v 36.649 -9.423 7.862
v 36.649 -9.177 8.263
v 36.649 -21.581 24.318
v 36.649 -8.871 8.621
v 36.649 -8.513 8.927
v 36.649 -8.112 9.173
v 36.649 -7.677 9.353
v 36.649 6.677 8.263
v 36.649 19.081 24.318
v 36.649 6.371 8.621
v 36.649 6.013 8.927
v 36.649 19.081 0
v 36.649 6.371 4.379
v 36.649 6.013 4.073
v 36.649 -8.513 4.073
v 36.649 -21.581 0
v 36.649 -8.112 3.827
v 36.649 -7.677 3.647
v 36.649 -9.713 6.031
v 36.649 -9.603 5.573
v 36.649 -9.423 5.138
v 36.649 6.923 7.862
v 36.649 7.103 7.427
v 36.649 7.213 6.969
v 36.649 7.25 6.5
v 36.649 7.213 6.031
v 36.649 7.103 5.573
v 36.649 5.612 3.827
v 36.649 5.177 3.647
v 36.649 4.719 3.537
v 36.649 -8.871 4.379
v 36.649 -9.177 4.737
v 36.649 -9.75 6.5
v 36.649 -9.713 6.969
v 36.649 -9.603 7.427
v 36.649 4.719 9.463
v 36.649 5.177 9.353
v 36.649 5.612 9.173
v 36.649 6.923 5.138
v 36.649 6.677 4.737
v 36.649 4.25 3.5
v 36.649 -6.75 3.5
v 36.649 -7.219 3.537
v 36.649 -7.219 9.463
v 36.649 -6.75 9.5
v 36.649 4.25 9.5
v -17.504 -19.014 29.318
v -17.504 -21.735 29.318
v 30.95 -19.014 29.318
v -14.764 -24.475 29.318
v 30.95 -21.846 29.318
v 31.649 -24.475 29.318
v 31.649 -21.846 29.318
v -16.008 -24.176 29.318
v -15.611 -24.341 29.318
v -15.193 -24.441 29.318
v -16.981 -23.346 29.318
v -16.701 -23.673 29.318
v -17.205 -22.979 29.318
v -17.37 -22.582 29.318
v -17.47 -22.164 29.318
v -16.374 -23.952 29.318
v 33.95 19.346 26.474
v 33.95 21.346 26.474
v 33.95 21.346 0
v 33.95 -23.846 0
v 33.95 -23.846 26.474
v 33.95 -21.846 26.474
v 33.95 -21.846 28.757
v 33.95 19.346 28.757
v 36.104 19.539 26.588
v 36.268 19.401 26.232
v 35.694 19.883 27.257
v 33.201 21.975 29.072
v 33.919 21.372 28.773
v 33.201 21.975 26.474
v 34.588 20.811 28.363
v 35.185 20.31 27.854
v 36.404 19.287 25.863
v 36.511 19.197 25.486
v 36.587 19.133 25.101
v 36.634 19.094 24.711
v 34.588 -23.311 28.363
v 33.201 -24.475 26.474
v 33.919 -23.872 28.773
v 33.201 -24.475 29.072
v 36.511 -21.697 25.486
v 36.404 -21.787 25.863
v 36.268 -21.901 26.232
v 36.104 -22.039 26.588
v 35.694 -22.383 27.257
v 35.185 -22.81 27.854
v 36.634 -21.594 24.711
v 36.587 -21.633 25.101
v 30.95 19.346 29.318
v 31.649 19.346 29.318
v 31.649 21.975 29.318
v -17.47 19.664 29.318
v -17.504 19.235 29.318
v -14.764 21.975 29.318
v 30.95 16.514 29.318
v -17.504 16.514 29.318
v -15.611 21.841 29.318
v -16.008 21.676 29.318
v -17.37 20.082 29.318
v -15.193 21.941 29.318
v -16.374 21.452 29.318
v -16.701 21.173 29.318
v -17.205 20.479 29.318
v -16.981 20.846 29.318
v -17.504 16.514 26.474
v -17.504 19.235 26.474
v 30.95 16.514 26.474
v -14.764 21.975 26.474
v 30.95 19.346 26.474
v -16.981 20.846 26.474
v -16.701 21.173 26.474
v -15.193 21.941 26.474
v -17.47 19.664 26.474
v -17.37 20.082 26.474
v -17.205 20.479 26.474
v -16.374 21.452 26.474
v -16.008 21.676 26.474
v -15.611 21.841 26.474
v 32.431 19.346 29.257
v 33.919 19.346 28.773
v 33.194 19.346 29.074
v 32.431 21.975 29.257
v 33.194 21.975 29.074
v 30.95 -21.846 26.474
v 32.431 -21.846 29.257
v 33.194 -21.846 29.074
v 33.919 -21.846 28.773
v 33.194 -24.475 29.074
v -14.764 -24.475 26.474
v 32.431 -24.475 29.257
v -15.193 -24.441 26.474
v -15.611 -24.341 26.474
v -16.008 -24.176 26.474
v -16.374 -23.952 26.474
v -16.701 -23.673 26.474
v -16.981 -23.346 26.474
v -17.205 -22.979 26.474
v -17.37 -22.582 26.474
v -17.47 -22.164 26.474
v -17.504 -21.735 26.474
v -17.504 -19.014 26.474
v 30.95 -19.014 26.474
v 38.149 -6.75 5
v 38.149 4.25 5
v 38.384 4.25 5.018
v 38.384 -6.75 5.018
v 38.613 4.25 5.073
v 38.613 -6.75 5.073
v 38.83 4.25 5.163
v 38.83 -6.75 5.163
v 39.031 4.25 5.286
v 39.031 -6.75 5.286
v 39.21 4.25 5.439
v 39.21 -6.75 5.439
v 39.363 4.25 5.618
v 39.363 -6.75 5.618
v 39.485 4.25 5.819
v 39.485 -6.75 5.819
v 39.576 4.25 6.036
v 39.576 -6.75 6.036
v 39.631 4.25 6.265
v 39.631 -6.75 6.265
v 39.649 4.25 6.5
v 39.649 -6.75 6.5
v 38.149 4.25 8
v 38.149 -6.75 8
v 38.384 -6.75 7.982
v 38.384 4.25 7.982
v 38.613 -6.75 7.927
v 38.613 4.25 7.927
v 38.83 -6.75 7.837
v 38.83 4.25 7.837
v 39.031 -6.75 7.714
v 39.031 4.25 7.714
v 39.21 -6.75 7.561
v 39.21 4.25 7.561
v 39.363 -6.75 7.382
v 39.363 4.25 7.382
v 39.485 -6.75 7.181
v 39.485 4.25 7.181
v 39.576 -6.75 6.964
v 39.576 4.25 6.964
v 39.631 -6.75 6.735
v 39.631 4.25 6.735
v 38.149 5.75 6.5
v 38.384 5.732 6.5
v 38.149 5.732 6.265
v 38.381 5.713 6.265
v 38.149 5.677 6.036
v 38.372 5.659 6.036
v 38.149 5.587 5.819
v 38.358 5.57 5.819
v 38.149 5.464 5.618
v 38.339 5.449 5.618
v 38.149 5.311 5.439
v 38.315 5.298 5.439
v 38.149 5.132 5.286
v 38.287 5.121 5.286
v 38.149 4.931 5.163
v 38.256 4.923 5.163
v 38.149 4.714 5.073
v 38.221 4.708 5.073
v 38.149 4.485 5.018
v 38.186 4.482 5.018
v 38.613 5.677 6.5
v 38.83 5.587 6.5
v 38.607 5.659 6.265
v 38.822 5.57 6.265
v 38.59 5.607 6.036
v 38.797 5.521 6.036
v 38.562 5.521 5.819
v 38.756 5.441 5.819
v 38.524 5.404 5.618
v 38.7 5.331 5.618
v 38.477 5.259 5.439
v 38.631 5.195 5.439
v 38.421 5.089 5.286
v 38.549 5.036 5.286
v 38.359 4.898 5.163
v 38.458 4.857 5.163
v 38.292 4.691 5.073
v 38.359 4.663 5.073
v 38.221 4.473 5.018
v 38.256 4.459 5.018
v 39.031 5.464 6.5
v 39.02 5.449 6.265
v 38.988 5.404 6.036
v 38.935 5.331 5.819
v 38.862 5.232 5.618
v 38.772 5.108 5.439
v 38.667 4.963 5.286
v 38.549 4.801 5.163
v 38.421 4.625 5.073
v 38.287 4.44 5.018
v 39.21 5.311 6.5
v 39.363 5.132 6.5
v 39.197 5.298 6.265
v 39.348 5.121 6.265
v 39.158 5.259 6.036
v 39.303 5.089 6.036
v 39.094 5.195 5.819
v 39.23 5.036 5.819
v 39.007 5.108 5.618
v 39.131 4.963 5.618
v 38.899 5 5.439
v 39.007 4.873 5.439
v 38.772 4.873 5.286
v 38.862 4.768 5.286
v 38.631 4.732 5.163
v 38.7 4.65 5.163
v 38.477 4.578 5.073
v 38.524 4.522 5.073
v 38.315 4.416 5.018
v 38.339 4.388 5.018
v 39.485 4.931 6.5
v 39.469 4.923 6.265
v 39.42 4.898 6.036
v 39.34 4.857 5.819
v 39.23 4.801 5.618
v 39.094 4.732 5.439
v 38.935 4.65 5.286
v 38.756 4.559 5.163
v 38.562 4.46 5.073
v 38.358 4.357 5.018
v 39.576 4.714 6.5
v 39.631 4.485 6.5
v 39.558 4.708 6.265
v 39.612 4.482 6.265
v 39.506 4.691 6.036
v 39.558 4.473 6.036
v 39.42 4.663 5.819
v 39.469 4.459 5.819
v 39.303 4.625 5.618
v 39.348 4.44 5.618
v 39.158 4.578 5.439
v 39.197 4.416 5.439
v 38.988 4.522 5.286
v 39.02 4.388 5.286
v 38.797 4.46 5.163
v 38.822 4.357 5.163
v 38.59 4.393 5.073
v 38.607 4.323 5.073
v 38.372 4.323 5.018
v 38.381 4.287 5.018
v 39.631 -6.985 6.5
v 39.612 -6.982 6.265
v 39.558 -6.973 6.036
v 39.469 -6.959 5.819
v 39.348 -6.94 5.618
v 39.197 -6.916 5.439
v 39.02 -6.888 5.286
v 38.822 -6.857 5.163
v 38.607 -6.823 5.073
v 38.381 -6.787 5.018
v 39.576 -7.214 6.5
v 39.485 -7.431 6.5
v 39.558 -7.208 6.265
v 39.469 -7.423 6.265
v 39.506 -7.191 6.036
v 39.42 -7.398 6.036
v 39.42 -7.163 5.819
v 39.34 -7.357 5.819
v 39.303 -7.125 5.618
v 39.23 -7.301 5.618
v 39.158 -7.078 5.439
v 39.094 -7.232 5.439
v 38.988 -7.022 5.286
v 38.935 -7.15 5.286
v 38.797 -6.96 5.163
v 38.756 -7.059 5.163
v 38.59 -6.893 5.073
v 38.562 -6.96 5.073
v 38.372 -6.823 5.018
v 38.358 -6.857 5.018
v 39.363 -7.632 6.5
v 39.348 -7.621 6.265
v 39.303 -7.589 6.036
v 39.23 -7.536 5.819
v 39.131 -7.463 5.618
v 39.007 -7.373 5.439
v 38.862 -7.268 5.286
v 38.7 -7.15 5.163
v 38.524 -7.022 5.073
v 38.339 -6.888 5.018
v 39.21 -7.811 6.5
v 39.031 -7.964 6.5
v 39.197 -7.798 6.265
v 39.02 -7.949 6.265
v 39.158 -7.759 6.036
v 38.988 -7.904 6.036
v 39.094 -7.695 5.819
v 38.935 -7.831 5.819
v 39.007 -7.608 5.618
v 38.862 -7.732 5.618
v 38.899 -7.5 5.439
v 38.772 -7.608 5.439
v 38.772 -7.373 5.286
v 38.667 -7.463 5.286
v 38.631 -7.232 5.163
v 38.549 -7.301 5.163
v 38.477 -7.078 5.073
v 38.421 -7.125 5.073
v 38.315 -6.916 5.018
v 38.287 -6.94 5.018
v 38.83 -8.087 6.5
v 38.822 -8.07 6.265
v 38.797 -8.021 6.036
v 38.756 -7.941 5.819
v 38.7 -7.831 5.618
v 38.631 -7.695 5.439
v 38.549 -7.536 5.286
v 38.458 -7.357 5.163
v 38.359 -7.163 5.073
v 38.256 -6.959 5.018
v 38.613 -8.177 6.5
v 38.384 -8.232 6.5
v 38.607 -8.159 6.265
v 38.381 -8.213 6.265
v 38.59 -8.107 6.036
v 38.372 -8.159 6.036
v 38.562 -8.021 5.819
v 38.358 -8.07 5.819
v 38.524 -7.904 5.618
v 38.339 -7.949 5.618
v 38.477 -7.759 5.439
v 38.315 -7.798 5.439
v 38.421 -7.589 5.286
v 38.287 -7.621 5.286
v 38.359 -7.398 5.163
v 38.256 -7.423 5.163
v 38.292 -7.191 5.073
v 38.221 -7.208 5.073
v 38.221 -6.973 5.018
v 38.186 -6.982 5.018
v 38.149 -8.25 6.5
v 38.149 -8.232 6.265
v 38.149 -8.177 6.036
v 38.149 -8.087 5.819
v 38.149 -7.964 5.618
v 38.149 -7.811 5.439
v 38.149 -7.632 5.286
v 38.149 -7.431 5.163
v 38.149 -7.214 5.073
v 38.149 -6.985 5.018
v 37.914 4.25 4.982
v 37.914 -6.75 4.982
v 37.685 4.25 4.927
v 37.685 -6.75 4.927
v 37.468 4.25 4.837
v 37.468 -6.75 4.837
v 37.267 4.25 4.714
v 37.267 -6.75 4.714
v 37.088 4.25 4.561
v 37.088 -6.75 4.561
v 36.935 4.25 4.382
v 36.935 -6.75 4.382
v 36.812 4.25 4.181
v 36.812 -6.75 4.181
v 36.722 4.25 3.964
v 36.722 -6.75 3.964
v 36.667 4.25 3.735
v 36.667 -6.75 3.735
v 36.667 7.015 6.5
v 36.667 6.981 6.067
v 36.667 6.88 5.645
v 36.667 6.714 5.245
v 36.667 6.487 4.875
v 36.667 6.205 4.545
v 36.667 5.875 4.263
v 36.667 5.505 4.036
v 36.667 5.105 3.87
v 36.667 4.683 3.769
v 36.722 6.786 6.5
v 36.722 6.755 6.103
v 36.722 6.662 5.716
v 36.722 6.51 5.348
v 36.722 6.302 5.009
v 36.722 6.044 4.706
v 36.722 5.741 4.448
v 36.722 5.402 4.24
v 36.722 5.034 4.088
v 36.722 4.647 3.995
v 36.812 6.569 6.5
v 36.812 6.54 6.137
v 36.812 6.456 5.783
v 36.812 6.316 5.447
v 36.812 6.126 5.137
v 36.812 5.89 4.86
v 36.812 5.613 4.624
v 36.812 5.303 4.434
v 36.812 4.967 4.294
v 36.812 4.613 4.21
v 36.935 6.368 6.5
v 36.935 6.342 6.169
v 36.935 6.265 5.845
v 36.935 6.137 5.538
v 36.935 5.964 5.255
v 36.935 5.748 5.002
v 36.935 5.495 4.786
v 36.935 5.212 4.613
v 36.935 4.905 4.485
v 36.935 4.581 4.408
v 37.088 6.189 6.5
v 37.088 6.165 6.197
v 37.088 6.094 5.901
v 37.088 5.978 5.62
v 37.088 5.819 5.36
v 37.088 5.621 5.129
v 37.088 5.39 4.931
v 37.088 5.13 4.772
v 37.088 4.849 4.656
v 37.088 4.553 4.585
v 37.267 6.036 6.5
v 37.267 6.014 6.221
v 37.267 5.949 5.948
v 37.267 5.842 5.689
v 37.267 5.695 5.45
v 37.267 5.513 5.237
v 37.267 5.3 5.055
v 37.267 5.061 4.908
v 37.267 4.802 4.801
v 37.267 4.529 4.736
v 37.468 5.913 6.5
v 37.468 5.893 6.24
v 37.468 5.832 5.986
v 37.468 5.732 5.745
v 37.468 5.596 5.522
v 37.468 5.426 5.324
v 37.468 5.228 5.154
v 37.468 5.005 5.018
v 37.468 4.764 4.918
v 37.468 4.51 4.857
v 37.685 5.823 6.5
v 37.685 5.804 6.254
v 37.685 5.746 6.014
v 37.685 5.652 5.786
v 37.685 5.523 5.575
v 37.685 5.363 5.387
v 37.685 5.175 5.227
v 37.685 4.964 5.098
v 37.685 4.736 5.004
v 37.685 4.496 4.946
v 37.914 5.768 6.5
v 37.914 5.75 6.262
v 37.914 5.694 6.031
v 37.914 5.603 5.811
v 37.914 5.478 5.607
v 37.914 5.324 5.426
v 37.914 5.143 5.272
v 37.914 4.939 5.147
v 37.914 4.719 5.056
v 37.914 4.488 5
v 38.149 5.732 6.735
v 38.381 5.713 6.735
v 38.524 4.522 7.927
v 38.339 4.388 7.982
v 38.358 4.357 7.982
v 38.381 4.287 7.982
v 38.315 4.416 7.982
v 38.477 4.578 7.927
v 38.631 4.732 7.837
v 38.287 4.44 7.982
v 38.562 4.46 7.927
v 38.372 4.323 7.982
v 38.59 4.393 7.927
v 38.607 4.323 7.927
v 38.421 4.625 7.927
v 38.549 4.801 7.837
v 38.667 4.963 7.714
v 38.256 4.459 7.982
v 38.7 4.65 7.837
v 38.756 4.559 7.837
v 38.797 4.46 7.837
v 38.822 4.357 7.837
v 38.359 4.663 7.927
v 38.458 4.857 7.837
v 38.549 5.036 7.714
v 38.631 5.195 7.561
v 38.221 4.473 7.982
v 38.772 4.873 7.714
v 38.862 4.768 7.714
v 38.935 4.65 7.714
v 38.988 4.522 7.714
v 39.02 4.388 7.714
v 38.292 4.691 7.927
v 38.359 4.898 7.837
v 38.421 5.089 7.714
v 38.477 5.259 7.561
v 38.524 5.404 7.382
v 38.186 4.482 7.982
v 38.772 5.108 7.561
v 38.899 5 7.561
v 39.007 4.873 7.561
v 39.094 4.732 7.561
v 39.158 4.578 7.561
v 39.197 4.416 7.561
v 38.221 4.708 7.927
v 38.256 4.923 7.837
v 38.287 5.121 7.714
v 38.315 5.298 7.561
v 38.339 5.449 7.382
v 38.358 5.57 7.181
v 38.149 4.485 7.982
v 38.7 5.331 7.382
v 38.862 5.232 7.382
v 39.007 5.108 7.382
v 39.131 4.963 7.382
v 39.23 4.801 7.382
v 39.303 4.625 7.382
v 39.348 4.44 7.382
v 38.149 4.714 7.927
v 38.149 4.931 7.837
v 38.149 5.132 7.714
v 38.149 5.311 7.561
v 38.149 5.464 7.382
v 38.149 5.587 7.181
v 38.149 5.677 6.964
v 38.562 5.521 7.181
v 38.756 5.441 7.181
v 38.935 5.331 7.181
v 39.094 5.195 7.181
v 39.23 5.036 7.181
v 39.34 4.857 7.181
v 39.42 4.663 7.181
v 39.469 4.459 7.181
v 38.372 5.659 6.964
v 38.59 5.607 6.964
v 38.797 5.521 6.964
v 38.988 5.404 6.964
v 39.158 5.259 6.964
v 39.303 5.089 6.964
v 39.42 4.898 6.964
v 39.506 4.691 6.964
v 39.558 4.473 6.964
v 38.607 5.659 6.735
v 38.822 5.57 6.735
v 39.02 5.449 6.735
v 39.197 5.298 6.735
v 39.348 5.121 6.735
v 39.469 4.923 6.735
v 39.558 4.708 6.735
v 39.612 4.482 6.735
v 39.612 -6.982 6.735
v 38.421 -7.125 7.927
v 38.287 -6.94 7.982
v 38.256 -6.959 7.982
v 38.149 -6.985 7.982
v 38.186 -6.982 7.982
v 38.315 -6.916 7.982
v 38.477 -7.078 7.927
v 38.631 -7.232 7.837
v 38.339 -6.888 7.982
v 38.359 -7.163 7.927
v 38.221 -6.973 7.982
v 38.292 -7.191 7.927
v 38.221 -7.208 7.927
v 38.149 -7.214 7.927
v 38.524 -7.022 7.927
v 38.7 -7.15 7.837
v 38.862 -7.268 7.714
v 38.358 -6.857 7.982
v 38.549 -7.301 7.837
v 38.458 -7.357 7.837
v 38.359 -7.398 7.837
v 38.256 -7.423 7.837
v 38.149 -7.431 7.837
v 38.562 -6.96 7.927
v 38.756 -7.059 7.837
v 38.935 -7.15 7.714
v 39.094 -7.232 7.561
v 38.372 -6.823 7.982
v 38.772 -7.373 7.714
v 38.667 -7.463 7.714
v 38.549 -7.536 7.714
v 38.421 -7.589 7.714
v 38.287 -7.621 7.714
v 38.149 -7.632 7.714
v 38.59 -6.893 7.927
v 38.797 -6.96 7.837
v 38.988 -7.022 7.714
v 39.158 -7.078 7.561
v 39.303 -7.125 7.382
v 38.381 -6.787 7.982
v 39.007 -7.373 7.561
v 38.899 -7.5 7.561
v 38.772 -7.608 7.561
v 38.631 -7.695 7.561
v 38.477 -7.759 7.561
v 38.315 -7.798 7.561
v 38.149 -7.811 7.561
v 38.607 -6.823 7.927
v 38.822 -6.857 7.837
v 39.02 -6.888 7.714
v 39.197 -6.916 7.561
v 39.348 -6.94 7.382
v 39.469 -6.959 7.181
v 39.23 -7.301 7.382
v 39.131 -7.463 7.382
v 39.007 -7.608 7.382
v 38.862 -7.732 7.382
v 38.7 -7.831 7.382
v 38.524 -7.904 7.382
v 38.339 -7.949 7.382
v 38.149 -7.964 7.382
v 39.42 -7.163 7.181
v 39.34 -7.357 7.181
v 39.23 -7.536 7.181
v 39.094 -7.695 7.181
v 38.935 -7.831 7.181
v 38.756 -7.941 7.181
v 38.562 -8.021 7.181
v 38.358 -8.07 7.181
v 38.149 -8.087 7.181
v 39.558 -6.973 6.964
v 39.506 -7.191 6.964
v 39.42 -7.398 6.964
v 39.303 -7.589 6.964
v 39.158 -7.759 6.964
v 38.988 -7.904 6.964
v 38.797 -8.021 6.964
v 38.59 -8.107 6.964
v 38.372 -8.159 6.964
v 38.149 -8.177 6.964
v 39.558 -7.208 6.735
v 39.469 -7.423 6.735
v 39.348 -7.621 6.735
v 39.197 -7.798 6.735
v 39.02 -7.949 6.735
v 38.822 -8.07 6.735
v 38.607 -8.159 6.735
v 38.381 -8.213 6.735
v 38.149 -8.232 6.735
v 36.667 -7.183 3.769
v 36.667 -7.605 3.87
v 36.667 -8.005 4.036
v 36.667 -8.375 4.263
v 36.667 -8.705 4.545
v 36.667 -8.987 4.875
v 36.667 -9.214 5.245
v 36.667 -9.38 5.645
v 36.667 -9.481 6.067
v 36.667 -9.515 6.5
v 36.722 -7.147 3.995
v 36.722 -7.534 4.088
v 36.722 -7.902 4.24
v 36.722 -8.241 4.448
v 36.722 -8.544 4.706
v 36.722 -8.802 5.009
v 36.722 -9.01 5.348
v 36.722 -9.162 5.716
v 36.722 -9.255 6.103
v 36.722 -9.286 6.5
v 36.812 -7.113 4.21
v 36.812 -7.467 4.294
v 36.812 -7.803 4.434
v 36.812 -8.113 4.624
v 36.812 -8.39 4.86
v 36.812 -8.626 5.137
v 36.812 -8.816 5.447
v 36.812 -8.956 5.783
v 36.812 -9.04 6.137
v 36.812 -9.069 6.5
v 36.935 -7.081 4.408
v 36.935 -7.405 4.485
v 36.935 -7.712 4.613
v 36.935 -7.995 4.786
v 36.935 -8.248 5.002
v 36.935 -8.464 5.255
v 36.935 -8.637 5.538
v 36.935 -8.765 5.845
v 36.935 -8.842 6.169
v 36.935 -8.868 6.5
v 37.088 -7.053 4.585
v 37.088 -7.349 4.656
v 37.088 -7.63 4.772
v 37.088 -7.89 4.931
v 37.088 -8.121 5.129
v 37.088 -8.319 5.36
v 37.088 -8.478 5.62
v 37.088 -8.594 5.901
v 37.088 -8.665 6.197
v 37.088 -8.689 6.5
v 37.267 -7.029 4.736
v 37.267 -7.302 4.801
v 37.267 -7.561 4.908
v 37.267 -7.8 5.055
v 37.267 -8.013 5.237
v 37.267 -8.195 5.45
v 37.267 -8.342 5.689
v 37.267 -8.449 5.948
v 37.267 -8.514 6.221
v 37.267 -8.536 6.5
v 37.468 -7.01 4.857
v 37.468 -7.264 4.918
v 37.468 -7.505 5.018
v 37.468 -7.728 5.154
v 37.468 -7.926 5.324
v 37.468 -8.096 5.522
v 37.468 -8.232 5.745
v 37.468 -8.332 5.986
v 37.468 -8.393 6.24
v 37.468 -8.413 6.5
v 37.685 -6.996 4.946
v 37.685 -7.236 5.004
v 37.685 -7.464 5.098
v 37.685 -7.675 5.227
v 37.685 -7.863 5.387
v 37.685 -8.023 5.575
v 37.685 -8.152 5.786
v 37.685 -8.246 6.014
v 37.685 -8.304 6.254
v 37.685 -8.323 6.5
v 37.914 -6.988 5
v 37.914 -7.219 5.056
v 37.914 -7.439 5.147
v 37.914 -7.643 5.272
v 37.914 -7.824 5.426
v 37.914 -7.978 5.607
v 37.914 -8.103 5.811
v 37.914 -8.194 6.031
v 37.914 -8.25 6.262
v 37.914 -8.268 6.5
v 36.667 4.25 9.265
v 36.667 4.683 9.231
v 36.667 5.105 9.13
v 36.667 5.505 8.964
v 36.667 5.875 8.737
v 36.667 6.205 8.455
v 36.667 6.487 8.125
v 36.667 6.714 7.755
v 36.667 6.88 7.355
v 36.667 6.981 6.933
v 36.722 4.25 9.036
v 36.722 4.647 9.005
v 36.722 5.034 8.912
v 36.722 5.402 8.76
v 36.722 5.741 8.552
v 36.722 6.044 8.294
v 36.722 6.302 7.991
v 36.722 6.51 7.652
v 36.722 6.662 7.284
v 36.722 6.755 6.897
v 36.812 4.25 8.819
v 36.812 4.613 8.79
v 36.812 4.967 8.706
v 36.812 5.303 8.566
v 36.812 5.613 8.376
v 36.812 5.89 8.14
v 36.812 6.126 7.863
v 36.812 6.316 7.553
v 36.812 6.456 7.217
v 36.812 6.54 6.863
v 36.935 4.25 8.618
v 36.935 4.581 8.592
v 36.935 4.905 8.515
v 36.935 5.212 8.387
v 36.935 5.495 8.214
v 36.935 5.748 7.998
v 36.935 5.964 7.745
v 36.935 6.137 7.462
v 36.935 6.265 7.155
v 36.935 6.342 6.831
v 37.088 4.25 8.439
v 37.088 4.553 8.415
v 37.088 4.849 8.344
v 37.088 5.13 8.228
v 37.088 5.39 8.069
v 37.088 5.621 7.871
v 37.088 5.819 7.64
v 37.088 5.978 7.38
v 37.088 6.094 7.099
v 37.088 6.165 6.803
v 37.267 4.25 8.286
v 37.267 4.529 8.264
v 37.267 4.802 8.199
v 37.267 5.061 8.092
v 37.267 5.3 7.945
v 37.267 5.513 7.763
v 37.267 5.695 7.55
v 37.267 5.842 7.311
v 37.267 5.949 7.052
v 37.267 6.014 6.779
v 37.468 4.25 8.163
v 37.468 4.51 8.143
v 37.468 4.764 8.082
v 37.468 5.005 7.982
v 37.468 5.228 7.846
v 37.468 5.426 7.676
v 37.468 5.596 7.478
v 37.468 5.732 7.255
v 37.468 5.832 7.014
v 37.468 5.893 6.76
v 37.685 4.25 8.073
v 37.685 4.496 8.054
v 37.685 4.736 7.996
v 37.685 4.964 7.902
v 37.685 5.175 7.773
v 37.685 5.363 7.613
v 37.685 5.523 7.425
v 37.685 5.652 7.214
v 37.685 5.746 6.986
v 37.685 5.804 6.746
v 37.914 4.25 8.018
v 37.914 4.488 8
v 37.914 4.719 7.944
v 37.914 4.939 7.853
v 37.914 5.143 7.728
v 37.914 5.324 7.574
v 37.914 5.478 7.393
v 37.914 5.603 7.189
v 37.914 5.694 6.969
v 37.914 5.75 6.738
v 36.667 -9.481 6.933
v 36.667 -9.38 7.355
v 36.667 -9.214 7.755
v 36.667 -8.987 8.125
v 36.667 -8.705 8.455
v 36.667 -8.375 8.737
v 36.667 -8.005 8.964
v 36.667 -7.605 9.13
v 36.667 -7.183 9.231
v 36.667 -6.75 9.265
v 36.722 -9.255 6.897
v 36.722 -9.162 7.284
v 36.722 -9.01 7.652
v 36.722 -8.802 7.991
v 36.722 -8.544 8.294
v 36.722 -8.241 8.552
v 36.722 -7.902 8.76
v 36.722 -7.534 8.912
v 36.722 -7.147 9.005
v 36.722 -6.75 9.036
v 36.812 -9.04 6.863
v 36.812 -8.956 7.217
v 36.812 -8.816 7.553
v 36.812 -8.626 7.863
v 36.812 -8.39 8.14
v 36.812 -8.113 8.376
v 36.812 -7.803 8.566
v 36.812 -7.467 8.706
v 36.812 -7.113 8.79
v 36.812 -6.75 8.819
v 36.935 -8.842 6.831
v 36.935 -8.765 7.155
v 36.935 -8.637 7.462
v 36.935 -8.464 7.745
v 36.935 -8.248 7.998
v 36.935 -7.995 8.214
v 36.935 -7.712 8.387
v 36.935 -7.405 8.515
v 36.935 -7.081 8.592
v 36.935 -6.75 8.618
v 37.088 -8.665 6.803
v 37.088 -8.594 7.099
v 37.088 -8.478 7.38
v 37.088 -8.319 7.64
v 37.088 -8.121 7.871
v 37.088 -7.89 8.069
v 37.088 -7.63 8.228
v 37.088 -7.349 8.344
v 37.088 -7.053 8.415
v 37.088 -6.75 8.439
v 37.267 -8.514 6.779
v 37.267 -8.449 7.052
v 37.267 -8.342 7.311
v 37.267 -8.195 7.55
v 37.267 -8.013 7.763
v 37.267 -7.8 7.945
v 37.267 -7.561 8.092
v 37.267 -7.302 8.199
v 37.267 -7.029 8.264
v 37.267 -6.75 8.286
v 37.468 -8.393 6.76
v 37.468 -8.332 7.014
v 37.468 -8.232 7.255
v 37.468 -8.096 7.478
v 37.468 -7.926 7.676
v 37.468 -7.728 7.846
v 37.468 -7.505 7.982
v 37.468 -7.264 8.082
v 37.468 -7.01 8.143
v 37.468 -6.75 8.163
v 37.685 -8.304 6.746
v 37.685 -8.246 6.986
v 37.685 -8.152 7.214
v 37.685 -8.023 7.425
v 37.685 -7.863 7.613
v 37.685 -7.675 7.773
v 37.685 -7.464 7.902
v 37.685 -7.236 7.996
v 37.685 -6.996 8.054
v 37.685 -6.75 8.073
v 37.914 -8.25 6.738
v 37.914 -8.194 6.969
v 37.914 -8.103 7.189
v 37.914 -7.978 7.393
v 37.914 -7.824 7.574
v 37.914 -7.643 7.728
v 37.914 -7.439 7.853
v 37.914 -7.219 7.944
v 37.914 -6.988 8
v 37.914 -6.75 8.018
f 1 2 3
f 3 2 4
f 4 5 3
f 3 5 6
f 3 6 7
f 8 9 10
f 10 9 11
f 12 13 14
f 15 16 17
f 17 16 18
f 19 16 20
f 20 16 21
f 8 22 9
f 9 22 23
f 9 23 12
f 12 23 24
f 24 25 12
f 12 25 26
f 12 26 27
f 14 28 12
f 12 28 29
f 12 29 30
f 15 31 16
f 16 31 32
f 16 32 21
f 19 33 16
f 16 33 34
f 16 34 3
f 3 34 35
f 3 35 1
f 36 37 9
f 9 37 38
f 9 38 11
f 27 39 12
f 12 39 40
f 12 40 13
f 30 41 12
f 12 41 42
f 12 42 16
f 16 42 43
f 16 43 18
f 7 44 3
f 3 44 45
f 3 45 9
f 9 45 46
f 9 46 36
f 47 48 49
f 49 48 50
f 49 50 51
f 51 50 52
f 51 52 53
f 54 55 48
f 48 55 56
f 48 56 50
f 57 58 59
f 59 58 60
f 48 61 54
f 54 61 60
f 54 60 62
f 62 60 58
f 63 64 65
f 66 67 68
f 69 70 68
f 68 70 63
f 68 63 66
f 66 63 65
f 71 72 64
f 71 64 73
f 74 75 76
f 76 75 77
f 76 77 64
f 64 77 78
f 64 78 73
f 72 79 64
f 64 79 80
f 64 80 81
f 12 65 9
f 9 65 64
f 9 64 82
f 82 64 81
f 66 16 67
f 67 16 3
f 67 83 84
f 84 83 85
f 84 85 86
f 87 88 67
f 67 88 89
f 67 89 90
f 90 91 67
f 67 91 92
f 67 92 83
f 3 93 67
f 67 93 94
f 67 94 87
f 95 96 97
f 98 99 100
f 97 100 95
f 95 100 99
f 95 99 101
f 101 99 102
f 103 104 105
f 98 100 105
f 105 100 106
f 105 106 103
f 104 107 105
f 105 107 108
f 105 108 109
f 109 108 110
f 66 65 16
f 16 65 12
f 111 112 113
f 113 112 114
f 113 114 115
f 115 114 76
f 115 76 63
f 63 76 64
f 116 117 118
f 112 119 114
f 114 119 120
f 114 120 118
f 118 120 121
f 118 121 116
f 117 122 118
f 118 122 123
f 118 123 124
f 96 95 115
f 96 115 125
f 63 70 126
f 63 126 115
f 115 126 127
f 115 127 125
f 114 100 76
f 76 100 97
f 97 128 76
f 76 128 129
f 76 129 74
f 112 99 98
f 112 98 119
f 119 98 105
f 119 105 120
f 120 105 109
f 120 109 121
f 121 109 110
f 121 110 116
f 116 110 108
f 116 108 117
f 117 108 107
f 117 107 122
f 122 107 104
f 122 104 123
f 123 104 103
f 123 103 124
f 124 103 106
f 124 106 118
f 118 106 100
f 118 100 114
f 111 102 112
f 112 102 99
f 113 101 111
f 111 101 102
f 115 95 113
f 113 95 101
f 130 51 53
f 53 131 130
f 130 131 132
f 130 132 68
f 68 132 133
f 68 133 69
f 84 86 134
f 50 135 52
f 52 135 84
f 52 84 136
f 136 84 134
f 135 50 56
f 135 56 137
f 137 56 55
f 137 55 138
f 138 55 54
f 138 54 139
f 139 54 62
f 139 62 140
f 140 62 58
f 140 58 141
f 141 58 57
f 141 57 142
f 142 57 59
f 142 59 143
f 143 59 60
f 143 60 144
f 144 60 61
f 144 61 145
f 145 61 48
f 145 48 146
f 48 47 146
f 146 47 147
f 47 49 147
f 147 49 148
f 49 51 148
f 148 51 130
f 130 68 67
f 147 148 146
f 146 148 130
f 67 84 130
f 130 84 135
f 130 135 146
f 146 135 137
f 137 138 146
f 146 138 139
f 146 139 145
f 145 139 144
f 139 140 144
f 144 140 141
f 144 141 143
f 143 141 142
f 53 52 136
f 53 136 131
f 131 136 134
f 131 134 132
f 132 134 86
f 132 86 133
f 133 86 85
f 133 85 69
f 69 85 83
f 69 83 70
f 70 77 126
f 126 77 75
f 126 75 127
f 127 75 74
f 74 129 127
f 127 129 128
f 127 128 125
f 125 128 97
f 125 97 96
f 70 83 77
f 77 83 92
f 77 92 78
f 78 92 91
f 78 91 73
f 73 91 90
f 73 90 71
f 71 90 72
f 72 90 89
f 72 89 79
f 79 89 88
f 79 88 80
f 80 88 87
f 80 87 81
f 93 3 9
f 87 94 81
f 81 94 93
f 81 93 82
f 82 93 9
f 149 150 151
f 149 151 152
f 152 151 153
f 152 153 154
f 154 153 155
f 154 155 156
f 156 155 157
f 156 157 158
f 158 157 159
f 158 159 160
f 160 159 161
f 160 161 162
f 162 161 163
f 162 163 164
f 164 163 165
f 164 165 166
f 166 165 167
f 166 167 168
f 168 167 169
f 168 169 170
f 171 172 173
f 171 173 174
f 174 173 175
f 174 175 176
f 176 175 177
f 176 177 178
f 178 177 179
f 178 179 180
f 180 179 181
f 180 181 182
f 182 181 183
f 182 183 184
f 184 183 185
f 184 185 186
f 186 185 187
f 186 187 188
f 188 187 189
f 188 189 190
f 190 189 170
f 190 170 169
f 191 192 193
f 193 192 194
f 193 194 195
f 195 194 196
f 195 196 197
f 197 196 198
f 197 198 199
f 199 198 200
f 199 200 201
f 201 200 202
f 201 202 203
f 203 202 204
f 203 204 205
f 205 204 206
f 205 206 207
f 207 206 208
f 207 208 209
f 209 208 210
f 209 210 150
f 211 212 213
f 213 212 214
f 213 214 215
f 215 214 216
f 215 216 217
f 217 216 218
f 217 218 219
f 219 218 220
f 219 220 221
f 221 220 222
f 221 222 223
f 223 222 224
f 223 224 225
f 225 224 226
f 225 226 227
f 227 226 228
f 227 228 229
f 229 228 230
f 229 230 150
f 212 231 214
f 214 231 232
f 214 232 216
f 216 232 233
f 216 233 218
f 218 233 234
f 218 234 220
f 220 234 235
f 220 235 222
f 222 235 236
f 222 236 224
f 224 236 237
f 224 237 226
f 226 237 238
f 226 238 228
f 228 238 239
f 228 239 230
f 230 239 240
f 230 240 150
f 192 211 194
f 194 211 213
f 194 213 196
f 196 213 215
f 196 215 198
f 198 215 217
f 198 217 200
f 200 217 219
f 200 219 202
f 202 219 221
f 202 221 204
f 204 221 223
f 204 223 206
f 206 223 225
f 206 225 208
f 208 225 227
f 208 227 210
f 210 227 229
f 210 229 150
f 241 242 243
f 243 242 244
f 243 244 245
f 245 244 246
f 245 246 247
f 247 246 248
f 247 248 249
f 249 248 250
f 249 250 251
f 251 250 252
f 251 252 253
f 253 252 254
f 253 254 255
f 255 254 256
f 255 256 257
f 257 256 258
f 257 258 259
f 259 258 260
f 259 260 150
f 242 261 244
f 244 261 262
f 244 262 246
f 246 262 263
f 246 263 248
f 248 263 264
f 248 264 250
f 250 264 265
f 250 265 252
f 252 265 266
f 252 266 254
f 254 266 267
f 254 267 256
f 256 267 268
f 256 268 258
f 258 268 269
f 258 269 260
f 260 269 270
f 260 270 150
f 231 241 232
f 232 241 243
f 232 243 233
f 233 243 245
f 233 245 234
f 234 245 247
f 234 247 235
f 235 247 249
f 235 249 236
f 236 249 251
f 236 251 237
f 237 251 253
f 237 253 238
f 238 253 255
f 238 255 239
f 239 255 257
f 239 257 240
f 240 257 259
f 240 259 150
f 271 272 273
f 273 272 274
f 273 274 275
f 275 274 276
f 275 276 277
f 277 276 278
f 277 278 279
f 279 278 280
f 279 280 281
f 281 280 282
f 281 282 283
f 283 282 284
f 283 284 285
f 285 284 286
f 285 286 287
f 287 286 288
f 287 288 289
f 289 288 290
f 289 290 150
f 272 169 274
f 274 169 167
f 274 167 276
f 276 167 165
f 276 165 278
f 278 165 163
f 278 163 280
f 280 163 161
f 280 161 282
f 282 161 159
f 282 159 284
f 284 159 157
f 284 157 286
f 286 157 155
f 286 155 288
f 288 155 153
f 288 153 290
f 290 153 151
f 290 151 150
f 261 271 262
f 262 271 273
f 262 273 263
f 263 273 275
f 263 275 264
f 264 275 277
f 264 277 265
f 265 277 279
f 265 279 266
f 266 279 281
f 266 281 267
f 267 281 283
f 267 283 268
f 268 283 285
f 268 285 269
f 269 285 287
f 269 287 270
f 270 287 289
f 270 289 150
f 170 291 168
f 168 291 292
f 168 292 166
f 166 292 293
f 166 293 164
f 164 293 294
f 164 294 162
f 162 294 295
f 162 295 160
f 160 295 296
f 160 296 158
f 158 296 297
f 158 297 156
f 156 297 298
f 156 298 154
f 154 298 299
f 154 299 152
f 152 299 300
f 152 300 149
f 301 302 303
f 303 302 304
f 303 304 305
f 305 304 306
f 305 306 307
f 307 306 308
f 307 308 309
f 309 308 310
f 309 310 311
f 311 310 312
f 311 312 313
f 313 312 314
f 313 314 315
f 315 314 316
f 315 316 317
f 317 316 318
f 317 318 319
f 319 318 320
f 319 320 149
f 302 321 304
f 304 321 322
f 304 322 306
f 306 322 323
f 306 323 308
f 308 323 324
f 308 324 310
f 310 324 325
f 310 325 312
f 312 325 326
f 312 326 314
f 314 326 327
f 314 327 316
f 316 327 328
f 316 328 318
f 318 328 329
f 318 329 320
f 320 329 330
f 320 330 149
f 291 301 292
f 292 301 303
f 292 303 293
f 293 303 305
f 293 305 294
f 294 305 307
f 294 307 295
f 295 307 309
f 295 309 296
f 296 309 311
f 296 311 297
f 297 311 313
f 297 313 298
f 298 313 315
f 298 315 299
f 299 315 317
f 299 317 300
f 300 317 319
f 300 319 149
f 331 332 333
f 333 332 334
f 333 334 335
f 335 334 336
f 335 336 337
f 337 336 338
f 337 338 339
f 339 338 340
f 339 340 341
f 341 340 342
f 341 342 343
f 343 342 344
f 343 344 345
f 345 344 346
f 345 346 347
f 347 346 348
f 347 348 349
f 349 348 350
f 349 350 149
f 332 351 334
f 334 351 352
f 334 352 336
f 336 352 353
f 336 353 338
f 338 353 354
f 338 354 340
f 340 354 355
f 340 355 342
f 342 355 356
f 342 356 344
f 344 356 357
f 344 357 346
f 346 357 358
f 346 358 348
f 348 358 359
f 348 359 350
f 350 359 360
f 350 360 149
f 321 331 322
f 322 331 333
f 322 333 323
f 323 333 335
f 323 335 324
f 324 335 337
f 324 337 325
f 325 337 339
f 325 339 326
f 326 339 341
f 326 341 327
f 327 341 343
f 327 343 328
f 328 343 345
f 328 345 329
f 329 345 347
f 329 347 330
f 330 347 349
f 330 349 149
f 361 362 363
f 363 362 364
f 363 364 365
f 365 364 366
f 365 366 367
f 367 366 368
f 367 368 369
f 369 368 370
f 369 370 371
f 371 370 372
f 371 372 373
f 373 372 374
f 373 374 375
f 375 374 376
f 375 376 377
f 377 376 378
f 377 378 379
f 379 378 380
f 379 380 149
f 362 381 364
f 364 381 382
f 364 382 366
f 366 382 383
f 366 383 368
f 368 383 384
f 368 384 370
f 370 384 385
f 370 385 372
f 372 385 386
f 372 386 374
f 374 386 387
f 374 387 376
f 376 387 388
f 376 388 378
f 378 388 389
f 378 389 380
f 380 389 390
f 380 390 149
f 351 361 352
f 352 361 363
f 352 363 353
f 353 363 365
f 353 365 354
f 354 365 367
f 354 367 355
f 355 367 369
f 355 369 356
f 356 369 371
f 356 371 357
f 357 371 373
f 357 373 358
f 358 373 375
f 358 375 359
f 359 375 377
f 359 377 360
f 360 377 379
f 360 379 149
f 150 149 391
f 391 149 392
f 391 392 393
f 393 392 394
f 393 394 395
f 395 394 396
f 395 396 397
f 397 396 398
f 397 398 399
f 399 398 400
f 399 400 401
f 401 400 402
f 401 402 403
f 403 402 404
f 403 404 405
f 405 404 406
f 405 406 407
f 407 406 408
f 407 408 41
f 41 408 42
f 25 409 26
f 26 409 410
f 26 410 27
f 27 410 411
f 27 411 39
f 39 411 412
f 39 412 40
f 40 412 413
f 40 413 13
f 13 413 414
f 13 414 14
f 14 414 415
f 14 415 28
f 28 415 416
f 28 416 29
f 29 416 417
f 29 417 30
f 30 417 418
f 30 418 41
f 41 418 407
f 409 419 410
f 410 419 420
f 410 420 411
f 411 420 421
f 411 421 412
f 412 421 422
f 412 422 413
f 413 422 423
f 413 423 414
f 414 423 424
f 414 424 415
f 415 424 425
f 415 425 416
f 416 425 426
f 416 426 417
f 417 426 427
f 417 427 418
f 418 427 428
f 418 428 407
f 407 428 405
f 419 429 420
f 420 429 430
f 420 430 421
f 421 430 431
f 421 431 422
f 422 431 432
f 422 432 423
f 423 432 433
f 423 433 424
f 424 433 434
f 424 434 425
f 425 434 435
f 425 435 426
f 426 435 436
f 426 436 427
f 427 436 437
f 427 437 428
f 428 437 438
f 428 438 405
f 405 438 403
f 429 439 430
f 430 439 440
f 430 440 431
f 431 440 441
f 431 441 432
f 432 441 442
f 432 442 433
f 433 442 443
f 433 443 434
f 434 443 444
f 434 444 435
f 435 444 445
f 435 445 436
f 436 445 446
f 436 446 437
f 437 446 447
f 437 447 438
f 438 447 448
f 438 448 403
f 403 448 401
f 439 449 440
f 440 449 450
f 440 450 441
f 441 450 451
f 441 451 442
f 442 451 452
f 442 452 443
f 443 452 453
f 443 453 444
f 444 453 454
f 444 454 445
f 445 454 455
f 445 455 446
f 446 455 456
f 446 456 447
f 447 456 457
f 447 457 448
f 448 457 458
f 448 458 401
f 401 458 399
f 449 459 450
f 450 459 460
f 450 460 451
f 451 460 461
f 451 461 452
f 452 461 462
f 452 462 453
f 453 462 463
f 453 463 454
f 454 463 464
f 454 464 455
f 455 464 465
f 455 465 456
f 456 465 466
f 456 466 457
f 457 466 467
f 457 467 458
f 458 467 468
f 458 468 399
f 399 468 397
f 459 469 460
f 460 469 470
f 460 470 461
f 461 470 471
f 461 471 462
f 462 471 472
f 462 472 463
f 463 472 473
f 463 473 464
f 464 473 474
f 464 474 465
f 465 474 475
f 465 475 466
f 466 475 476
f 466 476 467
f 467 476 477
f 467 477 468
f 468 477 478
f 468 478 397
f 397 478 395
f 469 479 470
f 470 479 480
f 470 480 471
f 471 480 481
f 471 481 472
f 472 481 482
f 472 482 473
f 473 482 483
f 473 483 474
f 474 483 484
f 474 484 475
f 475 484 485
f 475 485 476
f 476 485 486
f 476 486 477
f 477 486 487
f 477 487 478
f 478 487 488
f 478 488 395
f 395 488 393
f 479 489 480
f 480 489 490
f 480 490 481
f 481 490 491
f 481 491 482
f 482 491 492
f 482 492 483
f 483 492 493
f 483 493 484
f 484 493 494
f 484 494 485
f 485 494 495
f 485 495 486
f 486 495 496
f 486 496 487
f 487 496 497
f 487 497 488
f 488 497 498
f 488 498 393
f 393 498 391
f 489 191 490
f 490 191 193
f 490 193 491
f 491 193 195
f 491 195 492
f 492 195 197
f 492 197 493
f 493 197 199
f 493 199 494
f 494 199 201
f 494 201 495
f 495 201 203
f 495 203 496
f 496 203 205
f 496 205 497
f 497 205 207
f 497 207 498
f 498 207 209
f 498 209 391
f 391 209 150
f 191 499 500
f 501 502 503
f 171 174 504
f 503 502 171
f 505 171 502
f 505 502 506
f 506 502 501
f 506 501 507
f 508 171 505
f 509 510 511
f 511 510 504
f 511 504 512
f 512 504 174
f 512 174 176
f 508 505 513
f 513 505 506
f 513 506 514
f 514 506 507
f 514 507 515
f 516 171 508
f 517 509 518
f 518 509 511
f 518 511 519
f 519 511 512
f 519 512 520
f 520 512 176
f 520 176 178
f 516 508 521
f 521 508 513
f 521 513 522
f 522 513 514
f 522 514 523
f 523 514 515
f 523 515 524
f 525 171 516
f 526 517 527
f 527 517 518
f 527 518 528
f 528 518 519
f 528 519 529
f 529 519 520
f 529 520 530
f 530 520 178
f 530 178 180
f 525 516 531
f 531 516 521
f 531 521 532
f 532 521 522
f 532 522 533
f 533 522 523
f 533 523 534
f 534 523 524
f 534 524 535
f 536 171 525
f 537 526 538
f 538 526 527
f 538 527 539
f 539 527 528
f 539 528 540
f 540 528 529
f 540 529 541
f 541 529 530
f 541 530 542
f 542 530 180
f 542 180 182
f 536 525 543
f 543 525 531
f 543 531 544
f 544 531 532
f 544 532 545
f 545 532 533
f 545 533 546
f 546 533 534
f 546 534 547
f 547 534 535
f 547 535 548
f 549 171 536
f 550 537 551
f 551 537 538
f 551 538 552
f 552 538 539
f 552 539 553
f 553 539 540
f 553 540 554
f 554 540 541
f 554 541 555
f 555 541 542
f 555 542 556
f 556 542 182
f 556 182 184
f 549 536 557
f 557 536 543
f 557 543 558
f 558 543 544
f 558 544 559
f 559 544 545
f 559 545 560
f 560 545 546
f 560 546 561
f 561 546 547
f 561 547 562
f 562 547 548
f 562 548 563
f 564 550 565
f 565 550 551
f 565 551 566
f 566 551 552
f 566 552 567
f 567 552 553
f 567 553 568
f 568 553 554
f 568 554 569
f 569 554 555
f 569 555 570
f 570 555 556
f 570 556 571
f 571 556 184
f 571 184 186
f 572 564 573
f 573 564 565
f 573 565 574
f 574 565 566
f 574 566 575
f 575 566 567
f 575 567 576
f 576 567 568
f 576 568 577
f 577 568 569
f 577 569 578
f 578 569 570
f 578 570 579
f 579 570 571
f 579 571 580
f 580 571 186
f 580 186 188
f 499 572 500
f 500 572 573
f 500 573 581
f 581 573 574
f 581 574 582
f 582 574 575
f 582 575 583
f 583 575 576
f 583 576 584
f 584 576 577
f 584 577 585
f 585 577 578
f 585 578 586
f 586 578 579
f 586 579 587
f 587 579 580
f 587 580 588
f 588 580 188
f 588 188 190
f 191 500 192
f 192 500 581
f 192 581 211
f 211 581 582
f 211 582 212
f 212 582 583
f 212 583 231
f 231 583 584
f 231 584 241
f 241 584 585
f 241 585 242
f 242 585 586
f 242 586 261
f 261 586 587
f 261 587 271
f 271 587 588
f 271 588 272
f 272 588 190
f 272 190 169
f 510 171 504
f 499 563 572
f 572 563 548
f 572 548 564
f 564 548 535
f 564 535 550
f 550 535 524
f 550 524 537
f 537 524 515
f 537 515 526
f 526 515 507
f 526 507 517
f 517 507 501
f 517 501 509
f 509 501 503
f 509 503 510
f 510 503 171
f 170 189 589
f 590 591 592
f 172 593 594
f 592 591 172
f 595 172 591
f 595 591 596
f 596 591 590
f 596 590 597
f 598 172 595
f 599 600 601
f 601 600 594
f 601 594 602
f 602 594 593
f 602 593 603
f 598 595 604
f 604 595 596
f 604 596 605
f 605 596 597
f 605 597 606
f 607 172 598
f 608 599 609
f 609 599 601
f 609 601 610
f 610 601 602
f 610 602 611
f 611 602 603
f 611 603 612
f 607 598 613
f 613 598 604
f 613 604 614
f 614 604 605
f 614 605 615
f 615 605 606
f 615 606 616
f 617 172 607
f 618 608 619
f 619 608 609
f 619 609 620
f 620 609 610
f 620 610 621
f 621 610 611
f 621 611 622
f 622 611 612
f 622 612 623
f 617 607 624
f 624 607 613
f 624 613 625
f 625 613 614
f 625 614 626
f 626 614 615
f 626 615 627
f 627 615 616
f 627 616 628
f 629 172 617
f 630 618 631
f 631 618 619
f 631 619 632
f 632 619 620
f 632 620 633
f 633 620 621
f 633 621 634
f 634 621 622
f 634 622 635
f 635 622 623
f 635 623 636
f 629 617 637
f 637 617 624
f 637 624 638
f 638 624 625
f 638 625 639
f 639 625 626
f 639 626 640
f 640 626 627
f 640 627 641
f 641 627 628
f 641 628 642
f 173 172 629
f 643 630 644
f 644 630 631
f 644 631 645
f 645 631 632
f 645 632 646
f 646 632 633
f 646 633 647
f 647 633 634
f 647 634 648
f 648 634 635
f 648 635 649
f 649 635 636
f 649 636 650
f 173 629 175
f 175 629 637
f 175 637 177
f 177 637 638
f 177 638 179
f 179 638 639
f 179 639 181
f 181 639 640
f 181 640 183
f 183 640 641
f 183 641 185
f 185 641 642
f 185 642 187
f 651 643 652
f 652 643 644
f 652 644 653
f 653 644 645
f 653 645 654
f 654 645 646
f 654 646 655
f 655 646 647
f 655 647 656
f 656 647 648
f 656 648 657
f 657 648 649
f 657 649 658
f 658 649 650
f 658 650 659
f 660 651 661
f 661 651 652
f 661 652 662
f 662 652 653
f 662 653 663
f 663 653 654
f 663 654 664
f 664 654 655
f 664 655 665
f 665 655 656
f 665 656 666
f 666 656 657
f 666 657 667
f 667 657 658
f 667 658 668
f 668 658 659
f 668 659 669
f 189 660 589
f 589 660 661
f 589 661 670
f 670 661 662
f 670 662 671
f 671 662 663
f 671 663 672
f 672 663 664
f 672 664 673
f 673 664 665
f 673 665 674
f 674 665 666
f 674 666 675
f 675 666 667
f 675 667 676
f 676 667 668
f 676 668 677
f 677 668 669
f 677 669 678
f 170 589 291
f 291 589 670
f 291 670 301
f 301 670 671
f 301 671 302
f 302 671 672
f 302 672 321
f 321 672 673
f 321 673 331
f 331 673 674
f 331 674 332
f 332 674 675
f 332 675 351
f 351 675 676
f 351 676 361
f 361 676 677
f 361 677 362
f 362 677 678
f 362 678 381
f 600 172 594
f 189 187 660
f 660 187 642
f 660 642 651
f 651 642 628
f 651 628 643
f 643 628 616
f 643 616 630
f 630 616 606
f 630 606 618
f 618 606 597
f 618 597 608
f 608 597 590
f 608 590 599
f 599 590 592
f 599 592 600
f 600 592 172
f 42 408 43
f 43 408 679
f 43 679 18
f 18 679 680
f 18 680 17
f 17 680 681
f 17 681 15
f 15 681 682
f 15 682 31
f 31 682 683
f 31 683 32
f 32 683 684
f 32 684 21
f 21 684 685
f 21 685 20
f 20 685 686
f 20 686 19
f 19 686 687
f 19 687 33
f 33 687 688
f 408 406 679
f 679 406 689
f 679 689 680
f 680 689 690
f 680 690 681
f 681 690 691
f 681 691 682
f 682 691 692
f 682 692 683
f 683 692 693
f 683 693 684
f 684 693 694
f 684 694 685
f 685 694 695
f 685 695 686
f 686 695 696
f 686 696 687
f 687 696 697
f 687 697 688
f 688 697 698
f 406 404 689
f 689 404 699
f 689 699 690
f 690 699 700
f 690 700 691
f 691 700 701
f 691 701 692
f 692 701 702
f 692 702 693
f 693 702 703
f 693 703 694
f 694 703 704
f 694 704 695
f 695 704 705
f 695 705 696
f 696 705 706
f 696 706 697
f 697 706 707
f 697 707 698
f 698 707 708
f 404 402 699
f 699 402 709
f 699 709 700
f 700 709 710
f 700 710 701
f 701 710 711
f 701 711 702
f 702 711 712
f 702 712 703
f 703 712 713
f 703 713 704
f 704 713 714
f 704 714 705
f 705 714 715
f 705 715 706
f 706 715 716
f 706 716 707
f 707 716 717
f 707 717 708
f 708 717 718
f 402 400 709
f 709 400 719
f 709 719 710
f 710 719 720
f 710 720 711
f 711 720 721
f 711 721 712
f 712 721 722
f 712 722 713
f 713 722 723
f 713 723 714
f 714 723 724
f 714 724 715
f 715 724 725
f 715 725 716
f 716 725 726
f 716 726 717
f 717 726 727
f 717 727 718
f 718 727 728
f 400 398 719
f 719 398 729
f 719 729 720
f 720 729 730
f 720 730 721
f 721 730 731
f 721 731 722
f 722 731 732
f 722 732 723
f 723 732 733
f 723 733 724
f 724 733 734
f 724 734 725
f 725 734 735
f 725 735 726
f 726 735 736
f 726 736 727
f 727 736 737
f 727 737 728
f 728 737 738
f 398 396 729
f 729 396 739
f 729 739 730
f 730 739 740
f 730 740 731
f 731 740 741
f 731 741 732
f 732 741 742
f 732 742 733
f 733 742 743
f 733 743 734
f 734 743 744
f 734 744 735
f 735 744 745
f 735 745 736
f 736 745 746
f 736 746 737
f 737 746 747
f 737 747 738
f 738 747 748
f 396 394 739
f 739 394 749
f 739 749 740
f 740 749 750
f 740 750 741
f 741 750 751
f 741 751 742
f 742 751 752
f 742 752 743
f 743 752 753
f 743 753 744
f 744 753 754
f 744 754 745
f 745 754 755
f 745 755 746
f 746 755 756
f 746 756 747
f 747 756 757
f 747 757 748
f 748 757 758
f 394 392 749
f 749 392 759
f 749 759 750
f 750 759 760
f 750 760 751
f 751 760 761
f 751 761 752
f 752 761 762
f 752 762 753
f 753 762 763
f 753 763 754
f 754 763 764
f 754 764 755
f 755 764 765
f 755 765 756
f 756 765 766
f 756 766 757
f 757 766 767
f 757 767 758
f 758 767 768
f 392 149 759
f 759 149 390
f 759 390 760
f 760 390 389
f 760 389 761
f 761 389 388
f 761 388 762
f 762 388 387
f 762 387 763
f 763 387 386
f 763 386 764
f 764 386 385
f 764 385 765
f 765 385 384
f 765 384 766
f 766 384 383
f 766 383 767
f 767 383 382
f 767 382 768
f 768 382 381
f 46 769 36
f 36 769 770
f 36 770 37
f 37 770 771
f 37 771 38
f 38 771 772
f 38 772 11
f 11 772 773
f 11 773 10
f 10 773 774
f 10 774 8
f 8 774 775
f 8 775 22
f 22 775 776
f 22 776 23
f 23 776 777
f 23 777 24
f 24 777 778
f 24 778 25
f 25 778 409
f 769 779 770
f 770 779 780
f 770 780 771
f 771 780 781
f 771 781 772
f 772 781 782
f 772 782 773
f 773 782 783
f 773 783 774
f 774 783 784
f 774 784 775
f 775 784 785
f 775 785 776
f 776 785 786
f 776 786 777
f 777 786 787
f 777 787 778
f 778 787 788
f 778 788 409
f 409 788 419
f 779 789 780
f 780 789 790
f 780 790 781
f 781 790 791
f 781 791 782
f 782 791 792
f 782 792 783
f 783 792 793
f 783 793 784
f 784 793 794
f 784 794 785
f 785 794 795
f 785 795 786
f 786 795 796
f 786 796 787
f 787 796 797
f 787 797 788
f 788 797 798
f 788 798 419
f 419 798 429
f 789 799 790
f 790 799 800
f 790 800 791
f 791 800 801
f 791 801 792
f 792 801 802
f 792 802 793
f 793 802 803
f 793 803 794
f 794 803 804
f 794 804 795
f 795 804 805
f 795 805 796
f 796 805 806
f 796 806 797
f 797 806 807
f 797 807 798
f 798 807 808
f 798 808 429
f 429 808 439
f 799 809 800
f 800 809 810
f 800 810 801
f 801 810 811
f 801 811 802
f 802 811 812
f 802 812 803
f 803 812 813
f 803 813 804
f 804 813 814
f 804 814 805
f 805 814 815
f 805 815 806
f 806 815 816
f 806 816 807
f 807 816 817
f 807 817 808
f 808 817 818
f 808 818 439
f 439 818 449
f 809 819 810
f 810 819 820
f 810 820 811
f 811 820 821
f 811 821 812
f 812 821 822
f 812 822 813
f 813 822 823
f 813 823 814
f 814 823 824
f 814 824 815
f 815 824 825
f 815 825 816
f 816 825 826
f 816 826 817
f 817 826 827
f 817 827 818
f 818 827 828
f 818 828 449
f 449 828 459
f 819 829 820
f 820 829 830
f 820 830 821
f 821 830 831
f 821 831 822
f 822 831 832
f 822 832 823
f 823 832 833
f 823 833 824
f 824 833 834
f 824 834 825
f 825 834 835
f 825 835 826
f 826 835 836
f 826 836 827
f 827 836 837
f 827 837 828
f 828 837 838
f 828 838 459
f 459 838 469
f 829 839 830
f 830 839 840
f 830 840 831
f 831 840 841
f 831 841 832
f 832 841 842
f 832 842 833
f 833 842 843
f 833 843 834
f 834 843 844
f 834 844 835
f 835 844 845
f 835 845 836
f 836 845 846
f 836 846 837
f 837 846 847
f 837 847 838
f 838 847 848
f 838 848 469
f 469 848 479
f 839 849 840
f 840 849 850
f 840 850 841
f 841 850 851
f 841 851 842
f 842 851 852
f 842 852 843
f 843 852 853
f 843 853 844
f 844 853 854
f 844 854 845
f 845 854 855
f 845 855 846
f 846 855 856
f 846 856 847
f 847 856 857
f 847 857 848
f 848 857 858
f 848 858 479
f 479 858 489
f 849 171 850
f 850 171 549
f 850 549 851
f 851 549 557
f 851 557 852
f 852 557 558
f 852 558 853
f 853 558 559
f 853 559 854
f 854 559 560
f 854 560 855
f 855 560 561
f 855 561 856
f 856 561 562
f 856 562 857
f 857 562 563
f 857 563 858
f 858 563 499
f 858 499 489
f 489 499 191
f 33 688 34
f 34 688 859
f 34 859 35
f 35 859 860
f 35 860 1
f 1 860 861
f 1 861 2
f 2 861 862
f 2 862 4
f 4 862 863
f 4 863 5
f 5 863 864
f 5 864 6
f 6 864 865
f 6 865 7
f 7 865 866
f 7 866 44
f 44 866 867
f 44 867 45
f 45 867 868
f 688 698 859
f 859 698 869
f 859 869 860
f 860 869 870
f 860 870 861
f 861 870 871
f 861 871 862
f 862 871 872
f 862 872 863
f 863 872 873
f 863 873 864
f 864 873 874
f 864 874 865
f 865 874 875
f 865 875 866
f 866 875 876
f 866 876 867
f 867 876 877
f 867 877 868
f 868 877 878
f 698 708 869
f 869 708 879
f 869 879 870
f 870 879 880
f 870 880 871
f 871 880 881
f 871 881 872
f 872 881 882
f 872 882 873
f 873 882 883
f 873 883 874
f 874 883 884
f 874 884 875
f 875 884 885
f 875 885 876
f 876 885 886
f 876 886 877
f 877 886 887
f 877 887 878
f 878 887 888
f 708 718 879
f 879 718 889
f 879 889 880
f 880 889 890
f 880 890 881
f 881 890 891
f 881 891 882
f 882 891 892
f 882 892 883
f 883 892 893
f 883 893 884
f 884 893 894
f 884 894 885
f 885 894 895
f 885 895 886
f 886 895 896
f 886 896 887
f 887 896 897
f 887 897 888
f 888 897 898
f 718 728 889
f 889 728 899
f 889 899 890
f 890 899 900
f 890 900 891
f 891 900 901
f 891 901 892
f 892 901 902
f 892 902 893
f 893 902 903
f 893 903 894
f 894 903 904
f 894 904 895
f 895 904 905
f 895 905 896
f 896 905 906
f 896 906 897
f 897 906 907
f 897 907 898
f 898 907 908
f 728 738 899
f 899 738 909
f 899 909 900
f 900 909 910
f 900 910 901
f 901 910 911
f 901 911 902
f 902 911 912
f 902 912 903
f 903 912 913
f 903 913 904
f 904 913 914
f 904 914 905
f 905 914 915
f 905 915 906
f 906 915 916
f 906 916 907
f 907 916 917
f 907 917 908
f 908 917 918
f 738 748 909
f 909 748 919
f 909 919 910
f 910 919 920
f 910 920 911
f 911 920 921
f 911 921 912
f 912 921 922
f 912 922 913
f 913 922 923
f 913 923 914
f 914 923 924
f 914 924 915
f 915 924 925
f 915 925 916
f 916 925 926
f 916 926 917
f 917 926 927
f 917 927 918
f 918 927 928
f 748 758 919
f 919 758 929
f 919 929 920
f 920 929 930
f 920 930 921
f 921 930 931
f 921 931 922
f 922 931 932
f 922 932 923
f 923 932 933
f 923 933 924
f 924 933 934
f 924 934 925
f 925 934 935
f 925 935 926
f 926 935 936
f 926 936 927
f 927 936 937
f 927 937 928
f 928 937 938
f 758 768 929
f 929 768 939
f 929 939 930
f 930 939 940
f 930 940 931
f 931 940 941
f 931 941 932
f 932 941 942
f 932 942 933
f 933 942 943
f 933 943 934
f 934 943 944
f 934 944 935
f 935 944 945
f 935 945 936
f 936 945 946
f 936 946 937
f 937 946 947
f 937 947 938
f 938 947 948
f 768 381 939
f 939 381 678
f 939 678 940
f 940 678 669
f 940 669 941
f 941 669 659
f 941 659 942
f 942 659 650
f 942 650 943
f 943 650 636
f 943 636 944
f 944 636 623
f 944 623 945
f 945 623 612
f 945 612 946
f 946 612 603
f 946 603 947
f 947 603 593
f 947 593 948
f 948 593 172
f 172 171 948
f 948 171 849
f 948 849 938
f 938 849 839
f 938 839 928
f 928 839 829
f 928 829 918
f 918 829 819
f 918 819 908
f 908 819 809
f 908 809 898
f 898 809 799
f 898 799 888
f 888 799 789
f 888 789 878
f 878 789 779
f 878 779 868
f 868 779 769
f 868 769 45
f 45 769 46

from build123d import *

# Parameters (mm, degrees)
BOSS_EXTRUDE1_DEPTH = 29.3184
BOSS_EXTRUDE2_DEPTH = 2.8448
FILLET1_R           = 5
SKETCH3_W           = 3
SKETCH3_H           = 14
BOSS_EXTRUDE3_DEPTH = 3
FILLET2_R           = 1.5
FILLET3_R           = 1.5


# Some blends are built 0.0001 mm under size
with BuildPart() as part:
    # Sketch1 → Boss-Extrude1 (new body)
    with BuildSketch(Plane.XY):
        Polygon((33.95, 21.346198616), (33.95, -23.846198616), (36.648979486, -21.581485925), (36.648979486, -1.25), (36.648979486, 19.081485925), align=None)
    extrude(amount=BOSS_EXTRUDE1_DEPTH)

    # Sketch2 → Boss-Extrude2 (add)
    with BuildSketch(Plane.XY.offset(29.3184)):
        with BuildLine():
            Line((33.95, -21.846198616), (33.95, -23.846198616))
            Line((33.95, -23.846198616), (33.200504516, -24.4751))
            Line((33.200504516, -24.4751), (-14.764, -24.4751))
            ThreePointArc((-14.764, -24.4751), (-16.701369719, -23.67255493), (-17.503709057, -21.7351))
            Line((-17.503709057, -21.7351), (-17.503709057, -19.0141))
            Line((-17.503709057, -19.0141), (30.95, -19.0141))
            Line((30.95, -19.0141), (30.95, -21.846198616))
            Line((30.95, -21.846198616), (33.95, -21.846198616))
        make_face()
        with BuildLine():
            Line((30.95, 19.346198616), (33.95, 19.346198616))
            Line((33.95, 19.346198616), (33.95, 21.346198616))
            Line((33.95, 21.346198616), (33.200504516, 21.9751))
            Line((33.200504516, 21.9751), (-14.764, 21.9751))
            ThreePointArc((-14.764, 21.9751), (-16.701369719, 21.17255493), (-17.503709057, 19.2351))
            Line((-17.503709057, 19.2351), (-17.503709057, 16.5141))
            Line((-17.503709057, 16.5141), (30.95, 16.5141))
            Line((30.95, 16.5141), (30.95, 19.346198616))
        make_face()
    extrude(amount=-BOSS_EXTRUDE2_DEPTH)

    # Fillet1
    # the kernel refuses this fillet: 5 mm, written as the material it takes off along each edge
    with BuildSketch(Plane(origin=(36.648979486, 31.581485925, 29.3184), x_dir=(0, 0, -1), z_dir=(0, -1, 0))) as fillet1_piece_1:
        with BuildLine():
            CenterArc((FILLET1_R, -FILLET1_R), FILLET1_R, 90, 90)
            Line((0, -FILLET1_R), (0, 0))
            Line((0, 0), (FILLET1_R, 0))
        make_face()
    extrude(amount=65.66297185, mode=Mode.SUBTRACT)

    # Sketch3 → Boss-Extrude3 (add)
    with BuildSketch(Plane(origin=(36.648979486, 0, 0), x_dir=(0, 0, -1), z_dir=(1, 0, 0))):
        with Locations((-6.5, -1.25)):
            Rectangle(SKETCH3_W, SKETCH3_H)
    extrude(amount=BOSS_EXTRUDE3_DEPTH)

    # Fillet2
    fillet2_edges = [part.edges().sort_by_distance(p)[0] for p in [
        (39.648979486, -1.25, 8),
        (39.648979486, -8.25, 6.5),
        (39.648979486, -1.25, 5),
        (39.648979486, 5.75, 6.5),
    ]]
    fillet(fillet2_edges, radius=FILLET2_R - 0.0001)  # a hair under: the kernel refuses the full size

    # Fillet3
    # the kernel refuses this fillet: 1.5 mm, written as the material it takes off along each edge
    with BuildSketch(Plane(origin=(39.648979486, -6.75, 6.5), x_dir=(0, -1, 0), z_dir=(0, 0, 1))) as fillet3_piece_1:
        with BuildLine():
            CenterArc((0.0001, -1.4999), 1.4999, 0, 90)
            Line((1.5, -1.4999), (1.5, 0))
            Line((1.5, 0), (0.0001, 0))
        make_face()
    revolve(axis=Axis((39.648979486, -6.75, 6.5), (1, 0, 0)), revolution_arc=90, mode=Mode.SUBTRACT)
    with BuildSketch(Plane(origin=(39.648979486, -6.75, 6.5), x_dir=(0, 0, 1), z_dir=(0, 1, 0))) as fillet3_piece_2:
        with BuildLine():
            CenterArc((0.0001, -1.4999), 1.4999, 0, 90)
            Line((1.5, -1.4999), (1.5, 0))
            Line((1.5, 0), (0.0001, 0))
        make_face()
    revolve(axis=Axis((39.648979486, -6.75, 6.5), (1, 0, 0)), revolution_arc=90, mode=Mode.SUBTRACT)
    with BuildSketch(Plane(origin=(39.648979486, 4.25, 6.5), x_dir=(0, 0, -1), z_dir=(0, -1, 0))) as fillet3_piece_3:
        with BuildLine():
            CenterArc((0.0001, -1.4999), 1.4999, 0, 90)
            Line((1.5, -1.4999), (1.5, 0))
            Line((1.5, 0), (0.0001, 0))
        make_face()
    revolve(axis=Axis((39.648979486, 4.25, 6.5), (1, 0, 0)), revolution_arc=90, mode=Mode.SUBTRACT)
    with BuildSketch(Plane(origin=(39.648979486, 4.25, 6.5), x_dir=(0, 1, 0), z_dir=(0, 0, -1))) as fillet3_piece_4:
        with BuildLine():
            CenterArc((0.0001, -1.4999), 1.4999, 0, 90)
            Line((1.5, -1.4999), (1.5, 0))
            Line((1.5, 0), (0.0001, 0))
        make_face()
    revolve(axis=Axis((39.648979486, 4.25, 6.5), (1, 0, 0)), revolution_arc=90, mode=Mode.SUBTRACT)
    with BuildSketch(Plane(origin=(36.648979486, 5.75, 8), x_dir=(0, -1, 0), z_dir=(1, 0, 0)), Plane(origin=(36.648979486, 5.75, 5), x_dir=(0, 0, 1), z_dir=(1, 0, 0))) as fillet3_piece_5:
        with BuildLine():
            CenterArc((FILLET3_R, FILLET3_R), FILLET3_R, 180, 90)
            Line((0, FILLET3_R), (-FILLET3_R * 0.02, FILLET3_R))
            Line((-FILLET3_R * 0.02, FILLET3_R), (-FILLET3_R * 0.02, -FILLET3_R * 0.02))
            Line((-FILLET3_R * 0.02, -FILLET3_R * 0.02), (FILLET3_R, -FILLET3_R * 0.02))
            Line((FILLET3_R, -FILLET3_R * 0.02), (FILLET3_R, 0))
        make_face()
    extrude(amount=3, mode=Mode.SUBTRACT)
    with BuildSketch(Plane(origin=(36.648979486, -8.25, 5), x_dir=(0, 0, 1), z_dir=(1, 0, 0)), Plane(origin=(36.648979486, -8.25, 8), x_dir=(0, 1, 0), z_dir=(1, 0, 0))) as fillet3_piece_6:
        with BuildLine():
            CenterArc((FILLET3_R, -FILLET3_R), FILLET3_R, 90, 90)
            Line((0, -FILLET3_R), (-FILLET3_R * 0.02, -FILLET3_R))
            Line((-FILLET3_R * 0.02, -FILLET3_R), (-FILLET3_R * 0.02, FILLET3_R * 0.02))
            Line((-FILLET3_R * 0.02, FILLET3_R * 0.02), (FILLET3_R, FILLET3_R * 0.02))
            Line((FILLET3_R, FILLET3_R * 0.02), (FILLET3_R, 0))
        make_face()
    extrude(amount=3, mode=Mode.SUBTRACT)
    fillet3_2_edges = [part.edges().sort_by_distance(p)[0] for p in [
        (36.648979486, -1.25, 8),
        (36.648979486, -1.25, 5),
    ]]
    fillet(fillet3_2_edges, radius=FILLET3_R)


solid = part.part
